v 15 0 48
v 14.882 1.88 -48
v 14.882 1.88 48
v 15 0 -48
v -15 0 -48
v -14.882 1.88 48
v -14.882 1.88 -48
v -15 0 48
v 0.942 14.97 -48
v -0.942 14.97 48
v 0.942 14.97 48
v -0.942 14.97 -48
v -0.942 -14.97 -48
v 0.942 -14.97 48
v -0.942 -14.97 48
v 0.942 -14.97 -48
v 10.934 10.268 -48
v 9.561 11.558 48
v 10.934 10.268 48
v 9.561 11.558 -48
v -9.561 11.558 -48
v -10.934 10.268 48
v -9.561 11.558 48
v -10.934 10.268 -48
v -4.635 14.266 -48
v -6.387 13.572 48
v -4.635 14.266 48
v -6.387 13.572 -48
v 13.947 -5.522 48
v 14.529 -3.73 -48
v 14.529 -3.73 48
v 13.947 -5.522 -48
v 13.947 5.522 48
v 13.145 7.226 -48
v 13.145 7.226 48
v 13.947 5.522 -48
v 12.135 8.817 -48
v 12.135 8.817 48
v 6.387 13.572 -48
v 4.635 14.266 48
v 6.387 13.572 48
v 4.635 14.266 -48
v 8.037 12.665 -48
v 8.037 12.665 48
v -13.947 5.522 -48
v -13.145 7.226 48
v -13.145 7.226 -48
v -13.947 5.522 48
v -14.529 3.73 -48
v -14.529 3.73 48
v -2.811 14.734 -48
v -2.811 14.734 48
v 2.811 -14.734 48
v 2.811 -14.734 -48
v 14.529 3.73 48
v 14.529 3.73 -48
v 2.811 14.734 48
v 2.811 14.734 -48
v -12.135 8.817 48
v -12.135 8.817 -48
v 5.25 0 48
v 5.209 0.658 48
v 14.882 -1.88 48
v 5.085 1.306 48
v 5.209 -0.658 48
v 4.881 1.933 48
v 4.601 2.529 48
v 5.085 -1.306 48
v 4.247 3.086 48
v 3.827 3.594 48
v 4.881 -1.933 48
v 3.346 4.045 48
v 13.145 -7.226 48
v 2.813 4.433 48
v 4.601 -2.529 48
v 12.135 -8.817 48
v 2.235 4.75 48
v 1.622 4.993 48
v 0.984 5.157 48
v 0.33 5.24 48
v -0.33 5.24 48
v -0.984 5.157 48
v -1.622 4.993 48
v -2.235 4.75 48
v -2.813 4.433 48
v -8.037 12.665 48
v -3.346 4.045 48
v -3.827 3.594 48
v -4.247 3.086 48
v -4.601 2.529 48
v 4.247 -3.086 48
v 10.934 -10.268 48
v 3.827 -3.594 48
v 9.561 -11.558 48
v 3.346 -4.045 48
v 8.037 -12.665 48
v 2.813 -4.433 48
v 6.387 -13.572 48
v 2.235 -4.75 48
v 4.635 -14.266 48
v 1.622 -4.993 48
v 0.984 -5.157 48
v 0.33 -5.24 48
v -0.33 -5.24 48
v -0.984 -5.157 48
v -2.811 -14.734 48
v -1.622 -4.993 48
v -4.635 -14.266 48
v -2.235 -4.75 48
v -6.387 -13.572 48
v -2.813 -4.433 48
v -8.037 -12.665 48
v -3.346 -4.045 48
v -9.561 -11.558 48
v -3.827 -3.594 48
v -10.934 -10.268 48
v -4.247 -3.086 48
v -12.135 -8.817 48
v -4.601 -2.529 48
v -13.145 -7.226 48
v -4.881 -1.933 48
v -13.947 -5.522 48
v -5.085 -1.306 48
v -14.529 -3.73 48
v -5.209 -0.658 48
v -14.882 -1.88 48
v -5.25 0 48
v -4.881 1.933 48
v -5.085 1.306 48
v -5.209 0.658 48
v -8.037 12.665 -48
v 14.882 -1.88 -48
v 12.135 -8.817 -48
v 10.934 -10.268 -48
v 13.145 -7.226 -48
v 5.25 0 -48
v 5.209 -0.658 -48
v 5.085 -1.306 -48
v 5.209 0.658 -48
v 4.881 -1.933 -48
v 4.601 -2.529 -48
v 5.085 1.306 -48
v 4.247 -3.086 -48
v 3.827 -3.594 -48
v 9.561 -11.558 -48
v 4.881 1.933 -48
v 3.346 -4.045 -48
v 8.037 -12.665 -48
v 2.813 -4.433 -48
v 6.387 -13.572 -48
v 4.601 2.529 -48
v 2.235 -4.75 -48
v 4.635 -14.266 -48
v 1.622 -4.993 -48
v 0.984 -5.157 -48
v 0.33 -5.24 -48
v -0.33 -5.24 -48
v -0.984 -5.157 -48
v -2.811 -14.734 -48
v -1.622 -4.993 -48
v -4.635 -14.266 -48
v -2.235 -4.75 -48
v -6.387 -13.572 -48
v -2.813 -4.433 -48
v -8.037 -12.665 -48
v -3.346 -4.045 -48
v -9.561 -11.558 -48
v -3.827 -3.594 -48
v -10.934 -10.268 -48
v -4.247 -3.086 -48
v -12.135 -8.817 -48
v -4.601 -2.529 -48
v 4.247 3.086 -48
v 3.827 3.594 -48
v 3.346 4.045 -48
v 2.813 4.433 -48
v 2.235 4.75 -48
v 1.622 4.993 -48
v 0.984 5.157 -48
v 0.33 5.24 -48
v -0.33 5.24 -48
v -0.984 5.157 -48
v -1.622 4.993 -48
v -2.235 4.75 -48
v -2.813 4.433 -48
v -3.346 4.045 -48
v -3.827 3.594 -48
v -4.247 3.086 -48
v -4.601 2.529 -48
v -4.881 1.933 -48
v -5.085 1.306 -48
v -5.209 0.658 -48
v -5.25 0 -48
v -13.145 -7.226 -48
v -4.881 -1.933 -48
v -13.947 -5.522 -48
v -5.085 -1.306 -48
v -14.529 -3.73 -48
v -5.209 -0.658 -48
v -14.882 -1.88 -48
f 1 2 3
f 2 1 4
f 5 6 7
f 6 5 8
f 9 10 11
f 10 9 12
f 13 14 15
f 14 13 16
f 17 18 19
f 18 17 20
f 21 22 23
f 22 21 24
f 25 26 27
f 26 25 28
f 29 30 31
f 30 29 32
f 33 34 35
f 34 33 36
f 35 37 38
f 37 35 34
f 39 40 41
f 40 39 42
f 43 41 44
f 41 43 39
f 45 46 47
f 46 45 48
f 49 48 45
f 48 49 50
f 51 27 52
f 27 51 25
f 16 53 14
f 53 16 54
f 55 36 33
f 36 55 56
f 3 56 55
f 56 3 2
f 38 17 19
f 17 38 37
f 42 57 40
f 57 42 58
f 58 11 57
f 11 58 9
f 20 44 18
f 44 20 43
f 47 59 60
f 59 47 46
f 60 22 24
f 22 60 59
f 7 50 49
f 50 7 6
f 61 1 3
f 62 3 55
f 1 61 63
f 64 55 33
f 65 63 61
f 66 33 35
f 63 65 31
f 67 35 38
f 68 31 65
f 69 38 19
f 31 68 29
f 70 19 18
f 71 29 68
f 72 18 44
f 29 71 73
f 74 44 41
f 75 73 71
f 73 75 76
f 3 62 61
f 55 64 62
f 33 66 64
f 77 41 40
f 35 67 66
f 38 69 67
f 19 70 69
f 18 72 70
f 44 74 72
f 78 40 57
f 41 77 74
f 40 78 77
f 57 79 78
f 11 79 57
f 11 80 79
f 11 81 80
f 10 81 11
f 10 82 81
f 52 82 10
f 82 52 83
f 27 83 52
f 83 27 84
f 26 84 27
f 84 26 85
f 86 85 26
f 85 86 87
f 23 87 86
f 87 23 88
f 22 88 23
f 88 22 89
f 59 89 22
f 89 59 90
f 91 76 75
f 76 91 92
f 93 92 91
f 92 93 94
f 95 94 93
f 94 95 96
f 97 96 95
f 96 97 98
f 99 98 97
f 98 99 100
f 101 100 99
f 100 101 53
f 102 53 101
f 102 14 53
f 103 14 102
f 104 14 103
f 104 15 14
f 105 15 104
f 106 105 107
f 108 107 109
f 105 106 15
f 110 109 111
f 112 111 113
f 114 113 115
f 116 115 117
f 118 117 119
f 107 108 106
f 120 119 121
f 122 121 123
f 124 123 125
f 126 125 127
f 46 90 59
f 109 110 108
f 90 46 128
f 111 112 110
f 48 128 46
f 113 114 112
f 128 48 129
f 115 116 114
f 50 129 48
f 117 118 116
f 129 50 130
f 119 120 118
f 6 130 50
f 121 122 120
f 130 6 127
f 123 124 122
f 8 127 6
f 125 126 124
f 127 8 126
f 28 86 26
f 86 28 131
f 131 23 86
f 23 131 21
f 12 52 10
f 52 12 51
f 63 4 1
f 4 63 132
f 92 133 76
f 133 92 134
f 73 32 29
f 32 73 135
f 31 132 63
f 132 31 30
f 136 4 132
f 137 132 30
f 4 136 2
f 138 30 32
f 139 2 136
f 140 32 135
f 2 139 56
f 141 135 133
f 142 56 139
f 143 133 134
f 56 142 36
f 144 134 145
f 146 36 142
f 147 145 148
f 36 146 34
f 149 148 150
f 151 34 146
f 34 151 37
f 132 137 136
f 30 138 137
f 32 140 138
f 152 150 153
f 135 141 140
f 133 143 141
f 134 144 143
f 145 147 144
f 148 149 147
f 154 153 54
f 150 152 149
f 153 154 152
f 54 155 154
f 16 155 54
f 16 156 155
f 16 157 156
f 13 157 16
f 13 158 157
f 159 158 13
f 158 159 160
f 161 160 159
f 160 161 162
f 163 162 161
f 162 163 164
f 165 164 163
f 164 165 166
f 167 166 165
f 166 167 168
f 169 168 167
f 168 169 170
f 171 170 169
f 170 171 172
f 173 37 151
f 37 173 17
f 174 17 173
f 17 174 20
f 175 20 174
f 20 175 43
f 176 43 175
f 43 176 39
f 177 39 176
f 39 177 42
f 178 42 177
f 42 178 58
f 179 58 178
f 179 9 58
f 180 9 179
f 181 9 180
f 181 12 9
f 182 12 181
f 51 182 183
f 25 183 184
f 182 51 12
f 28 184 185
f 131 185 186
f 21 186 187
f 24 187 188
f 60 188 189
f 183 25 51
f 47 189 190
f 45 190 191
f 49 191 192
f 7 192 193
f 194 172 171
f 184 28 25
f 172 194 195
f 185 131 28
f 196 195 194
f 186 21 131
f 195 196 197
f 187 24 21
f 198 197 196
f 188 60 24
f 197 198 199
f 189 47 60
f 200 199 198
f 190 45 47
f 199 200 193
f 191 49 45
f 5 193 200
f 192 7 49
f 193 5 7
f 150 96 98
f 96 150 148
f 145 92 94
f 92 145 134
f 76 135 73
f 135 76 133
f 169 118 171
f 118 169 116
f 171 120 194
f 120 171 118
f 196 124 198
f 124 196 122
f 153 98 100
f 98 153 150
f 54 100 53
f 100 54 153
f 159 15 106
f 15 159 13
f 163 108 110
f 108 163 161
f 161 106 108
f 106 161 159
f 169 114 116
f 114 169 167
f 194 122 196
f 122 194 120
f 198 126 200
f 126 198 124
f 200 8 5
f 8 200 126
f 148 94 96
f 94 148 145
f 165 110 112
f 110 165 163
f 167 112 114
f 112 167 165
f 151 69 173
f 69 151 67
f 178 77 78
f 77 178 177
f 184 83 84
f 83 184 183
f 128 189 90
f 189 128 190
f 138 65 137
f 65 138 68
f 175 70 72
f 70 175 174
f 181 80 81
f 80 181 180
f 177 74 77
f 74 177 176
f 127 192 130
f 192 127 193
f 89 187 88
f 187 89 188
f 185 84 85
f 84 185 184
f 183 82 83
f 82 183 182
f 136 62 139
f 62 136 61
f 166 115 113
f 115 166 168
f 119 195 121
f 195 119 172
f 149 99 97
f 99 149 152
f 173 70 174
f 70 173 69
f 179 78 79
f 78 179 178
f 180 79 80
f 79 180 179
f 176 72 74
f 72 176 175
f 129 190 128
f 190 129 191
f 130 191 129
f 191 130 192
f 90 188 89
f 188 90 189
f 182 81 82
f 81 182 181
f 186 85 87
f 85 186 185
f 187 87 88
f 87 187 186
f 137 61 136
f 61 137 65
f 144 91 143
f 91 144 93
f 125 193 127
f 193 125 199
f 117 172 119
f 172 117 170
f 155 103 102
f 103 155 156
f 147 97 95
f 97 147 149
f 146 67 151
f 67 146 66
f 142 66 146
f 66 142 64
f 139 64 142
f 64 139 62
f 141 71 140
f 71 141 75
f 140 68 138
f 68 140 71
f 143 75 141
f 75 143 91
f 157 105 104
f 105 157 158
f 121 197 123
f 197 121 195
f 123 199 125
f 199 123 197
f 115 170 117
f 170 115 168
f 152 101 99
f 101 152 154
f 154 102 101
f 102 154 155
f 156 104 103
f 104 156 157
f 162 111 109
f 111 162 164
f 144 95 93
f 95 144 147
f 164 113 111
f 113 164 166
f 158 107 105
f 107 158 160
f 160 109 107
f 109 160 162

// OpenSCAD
$fn = 50;


difference() {
	union() {
		translate(v = [0, 0, -48.0000000000]) {
			cylinder(h = 96, r = 15.0000000000);
		}
	}
	union() {
		translate(v = [0, 0, -100.0000000000]) {
			cylinder(h = 200, r = 5.2500000000);
		}
	}
}
